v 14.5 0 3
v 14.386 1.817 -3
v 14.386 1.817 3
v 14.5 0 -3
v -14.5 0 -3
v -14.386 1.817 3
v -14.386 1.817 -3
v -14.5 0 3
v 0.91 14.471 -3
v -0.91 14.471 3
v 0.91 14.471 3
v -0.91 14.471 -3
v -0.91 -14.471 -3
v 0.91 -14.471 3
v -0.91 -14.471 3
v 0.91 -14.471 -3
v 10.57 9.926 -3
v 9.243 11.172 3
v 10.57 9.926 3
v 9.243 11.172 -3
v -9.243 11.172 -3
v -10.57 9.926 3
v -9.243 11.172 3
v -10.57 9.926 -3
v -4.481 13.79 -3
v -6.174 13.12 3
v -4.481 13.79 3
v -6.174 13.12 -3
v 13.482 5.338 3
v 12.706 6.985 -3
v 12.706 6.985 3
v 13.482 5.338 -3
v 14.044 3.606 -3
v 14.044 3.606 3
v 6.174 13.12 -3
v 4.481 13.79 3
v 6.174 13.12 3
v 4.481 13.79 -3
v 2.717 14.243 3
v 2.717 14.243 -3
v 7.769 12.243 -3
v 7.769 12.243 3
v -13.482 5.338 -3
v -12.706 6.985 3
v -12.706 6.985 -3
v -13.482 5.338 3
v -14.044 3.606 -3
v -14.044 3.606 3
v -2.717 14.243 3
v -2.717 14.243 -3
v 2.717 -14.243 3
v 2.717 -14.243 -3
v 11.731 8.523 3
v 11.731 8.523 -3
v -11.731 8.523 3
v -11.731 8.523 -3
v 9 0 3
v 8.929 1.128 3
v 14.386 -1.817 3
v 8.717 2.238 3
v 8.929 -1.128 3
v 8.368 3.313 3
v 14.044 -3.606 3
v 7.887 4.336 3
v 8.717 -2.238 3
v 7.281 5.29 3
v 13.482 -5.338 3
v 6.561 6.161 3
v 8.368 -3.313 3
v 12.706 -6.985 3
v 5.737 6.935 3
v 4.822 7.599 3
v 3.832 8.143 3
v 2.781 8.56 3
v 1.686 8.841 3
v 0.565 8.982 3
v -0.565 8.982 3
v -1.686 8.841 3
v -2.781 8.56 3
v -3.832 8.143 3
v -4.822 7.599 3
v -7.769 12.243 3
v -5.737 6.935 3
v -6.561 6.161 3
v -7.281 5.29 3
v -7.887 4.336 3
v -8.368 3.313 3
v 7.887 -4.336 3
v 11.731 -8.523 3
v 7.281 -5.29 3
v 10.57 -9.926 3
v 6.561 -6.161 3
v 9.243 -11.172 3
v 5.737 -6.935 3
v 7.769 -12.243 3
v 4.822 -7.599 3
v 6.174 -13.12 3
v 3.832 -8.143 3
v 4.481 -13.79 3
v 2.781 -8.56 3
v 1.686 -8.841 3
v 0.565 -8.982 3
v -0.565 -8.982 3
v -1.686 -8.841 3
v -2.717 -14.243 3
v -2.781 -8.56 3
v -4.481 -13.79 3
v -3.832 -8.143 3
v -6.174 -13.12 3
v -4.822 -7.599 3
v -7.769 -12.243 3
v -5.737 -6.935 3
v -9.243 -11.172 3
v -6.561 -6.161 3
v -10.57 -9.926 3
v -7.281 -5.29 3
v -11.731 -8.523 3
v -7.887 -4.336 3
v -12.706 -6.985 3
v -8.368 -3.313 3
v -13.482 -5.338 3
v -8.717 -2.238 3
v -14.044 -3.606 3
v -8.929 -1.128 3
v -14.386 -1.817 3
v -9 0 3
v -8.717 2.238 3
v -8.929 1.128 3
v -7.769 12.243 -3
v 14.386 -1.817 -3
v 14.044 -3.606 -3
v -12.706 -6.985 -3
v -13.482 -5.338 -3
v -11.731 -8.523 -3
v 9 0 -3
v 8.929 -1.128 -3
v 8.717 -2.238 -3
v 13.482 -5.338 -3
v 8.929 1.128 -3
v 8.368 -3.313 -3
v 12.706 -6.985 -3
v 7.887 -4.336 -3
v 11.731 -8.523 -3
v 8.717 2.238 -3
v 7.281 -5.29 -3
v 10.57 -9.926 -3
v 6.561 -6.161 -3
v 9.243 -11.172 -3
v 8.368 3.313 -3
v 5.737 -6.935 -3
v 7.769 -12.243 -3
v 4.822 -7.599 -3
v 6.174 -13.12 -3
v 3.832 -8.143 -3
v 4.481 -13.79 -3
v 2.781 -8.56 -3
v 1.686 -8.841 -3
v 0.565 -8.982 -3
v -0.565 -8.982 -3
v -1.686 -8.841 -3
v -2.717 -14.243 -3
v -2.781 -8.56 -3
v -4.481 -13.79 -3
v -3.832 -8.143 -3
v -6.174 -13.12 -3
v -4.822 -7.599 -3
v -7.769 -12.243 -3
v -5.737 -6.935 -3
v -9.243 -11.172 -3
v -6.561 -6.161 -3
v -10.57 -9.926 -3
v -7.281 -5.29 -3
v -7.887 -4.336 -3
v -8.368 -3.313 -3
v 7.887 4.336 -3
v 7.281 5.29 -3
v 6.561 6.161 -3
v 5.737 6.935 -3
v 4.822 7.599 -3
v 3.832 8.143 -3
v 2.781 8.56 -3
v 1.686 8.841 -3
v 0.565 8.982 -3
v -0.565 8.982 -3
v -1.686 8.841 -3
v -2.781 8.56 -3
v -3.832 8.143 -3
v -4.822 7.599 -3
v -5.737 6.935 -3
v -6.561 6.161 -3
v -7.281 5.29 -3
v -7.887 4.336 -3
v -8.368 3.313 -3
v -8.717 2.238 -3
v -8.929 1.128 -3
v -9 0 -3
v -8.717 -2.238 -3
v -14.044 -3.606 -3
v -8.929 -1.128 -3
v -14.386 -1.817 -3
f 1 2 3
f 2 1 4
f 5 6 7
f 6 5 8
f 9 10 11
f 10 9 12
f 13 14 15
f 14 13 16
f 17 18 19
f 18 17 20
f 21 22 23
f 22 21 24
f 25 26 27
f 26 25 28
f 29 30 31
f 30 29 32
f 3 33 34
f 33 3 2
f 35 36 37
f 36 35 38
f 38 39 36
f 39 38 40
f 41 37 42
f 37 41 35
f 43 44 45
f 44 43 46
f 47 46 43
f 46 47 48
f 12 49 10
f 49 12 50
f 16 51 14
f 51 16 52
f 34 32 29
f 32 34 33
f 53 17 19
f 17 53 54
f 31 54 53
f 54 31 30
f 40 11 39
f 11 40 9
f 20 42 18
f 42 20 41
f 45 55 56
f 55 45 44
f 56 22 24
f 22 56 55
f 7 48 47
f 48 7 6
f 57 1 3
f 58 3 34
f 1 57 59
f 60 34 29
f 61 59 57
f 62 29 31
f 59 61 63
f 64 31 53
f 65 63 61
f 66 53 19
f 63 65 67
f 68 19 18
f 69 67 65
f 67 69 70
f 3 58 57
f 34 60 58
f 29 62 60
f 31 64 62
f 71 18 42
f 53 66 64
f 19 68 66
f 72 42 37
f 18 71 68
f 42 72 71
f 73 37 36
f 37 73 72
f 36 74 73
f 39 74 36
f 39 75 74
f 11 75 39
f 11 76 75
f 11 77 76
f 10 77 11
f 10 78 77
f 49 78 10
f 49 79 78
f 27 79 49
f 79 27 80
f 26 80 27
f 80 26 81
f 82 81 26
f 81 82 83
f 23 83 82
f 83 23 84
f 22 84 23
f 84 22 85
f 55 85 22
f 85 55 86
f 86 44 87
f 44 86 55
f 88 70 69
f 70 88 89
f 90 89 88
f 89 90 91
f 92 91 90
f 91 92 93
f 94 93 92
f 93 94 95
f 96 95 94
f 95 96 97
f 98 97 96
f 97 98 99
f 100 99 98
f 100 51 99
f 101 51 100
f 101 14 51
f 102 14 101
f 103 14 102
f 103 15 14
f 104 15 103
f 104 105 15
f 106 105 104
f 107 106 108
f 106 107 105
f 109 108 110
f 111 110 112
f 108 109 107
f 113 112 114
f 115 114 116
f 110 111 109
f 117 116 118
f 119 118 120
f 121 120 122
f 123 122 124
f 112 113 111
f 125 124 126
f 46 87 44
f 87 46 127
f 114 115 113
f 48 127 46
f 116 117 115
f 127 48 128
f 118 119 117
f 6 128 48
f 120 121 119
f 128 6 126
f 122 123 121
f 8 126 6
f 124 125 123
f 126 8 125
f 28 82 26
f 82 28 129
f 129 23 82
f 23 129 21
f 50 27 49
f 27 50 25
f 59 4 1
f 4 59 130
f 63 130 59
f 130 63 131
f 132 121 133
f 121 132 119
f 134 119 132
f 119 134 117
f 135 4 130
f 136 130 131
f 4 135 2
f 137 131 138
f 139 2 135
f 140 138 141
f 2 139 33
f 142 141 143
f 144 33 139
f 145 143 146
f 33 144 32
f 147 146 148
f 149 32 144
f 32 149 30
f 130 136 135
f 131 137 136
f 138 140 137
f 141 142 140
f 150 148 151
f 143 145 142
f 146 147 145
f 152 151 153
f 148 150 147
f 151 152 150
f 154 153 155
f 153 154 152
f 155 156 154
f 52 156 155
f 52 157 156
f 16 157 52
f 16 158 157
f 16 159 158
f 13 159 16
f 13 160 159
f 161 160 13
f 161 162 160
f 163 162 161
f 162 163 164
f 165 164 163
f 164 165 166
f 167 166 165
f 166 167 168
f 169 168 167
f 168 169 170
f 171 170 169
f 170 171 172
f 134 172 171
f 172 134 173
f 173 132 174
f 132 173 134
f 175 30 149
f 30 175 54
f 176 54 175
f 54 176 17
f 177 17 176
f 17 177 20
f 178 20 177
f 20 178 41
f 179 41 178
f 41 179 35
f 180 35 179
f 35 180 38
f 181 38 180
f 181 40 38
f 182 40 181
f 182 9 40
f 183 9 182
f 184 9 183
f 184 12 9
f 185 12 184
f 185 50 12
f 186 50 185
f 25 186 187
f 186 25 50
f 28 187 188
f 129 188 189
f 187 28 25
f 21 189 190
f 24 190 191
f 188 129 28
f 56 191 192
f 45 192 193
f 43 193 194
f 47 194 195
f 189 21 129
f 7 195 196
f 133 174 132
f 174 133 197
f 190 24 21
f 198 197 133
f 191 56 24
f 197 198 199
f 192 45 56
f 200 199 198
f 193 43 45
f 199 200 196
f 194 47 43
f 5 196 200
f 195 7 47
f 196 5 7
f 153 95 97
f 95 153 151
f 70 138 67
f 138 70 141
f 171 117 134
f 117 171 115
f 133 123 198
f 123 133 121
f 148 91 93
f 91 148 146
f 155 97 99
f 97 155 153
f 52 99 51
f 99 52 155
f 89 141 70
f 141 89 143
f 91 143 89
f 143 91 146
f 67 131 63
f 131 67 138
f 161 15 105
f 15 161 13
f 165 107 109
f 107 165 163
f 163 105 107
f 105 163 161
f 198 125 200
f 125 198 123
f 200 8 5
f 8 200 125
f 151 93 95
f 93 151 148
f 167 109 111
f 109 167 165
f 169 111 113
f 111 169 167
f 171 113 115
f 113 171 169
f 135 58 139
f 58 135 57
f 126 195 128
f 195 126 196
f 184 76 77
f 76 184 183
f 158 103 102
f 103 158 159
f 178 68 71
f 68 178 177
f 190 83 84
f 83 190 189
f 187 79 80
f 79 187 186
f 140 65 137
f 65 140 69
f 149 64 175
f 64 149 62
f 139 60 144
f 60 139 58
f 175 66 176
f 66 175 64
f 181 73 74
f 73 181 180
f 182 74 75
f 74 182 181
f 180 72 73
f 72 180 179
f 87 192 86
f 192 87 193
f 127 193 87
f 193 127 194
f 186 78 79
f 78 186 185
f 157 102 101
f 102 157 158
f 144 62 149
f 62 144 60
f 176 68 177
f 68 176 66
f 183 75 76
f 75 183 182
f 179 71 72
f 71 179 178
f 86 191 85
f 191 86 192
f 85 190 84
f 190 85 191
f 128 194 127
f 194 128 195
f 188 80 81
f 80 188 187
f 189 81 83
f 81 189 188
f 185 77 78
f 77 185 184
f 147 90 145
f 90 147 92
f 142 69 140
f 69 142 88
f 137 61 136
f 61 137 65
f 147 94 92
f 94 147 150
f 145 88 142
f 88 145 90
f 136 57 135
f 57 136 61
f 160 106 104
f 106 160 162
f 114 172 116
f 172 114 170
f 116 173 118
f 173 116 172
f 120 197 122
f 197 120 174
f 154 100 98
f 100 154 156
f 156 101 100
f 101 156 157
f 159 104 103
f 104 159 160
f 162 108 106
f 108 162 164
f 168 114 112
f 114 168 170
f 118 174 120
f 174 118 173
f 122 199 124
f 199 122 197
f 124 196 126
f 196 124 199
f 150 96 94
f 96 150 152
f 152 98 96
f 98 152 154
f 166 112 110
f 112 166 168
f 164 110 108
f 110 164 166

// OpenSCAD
$fn = 50;


difference() {
	union() {
		translate(v = [0, 0, -3.0000000000]) {
			cylinder(h = 6, r = 14.5000000000);
		}
	}
	union() {
		translate(v = [0, 0, -100.0000000000]) {
			cylinder(h = 200, r = 9);
		}
	}
}
